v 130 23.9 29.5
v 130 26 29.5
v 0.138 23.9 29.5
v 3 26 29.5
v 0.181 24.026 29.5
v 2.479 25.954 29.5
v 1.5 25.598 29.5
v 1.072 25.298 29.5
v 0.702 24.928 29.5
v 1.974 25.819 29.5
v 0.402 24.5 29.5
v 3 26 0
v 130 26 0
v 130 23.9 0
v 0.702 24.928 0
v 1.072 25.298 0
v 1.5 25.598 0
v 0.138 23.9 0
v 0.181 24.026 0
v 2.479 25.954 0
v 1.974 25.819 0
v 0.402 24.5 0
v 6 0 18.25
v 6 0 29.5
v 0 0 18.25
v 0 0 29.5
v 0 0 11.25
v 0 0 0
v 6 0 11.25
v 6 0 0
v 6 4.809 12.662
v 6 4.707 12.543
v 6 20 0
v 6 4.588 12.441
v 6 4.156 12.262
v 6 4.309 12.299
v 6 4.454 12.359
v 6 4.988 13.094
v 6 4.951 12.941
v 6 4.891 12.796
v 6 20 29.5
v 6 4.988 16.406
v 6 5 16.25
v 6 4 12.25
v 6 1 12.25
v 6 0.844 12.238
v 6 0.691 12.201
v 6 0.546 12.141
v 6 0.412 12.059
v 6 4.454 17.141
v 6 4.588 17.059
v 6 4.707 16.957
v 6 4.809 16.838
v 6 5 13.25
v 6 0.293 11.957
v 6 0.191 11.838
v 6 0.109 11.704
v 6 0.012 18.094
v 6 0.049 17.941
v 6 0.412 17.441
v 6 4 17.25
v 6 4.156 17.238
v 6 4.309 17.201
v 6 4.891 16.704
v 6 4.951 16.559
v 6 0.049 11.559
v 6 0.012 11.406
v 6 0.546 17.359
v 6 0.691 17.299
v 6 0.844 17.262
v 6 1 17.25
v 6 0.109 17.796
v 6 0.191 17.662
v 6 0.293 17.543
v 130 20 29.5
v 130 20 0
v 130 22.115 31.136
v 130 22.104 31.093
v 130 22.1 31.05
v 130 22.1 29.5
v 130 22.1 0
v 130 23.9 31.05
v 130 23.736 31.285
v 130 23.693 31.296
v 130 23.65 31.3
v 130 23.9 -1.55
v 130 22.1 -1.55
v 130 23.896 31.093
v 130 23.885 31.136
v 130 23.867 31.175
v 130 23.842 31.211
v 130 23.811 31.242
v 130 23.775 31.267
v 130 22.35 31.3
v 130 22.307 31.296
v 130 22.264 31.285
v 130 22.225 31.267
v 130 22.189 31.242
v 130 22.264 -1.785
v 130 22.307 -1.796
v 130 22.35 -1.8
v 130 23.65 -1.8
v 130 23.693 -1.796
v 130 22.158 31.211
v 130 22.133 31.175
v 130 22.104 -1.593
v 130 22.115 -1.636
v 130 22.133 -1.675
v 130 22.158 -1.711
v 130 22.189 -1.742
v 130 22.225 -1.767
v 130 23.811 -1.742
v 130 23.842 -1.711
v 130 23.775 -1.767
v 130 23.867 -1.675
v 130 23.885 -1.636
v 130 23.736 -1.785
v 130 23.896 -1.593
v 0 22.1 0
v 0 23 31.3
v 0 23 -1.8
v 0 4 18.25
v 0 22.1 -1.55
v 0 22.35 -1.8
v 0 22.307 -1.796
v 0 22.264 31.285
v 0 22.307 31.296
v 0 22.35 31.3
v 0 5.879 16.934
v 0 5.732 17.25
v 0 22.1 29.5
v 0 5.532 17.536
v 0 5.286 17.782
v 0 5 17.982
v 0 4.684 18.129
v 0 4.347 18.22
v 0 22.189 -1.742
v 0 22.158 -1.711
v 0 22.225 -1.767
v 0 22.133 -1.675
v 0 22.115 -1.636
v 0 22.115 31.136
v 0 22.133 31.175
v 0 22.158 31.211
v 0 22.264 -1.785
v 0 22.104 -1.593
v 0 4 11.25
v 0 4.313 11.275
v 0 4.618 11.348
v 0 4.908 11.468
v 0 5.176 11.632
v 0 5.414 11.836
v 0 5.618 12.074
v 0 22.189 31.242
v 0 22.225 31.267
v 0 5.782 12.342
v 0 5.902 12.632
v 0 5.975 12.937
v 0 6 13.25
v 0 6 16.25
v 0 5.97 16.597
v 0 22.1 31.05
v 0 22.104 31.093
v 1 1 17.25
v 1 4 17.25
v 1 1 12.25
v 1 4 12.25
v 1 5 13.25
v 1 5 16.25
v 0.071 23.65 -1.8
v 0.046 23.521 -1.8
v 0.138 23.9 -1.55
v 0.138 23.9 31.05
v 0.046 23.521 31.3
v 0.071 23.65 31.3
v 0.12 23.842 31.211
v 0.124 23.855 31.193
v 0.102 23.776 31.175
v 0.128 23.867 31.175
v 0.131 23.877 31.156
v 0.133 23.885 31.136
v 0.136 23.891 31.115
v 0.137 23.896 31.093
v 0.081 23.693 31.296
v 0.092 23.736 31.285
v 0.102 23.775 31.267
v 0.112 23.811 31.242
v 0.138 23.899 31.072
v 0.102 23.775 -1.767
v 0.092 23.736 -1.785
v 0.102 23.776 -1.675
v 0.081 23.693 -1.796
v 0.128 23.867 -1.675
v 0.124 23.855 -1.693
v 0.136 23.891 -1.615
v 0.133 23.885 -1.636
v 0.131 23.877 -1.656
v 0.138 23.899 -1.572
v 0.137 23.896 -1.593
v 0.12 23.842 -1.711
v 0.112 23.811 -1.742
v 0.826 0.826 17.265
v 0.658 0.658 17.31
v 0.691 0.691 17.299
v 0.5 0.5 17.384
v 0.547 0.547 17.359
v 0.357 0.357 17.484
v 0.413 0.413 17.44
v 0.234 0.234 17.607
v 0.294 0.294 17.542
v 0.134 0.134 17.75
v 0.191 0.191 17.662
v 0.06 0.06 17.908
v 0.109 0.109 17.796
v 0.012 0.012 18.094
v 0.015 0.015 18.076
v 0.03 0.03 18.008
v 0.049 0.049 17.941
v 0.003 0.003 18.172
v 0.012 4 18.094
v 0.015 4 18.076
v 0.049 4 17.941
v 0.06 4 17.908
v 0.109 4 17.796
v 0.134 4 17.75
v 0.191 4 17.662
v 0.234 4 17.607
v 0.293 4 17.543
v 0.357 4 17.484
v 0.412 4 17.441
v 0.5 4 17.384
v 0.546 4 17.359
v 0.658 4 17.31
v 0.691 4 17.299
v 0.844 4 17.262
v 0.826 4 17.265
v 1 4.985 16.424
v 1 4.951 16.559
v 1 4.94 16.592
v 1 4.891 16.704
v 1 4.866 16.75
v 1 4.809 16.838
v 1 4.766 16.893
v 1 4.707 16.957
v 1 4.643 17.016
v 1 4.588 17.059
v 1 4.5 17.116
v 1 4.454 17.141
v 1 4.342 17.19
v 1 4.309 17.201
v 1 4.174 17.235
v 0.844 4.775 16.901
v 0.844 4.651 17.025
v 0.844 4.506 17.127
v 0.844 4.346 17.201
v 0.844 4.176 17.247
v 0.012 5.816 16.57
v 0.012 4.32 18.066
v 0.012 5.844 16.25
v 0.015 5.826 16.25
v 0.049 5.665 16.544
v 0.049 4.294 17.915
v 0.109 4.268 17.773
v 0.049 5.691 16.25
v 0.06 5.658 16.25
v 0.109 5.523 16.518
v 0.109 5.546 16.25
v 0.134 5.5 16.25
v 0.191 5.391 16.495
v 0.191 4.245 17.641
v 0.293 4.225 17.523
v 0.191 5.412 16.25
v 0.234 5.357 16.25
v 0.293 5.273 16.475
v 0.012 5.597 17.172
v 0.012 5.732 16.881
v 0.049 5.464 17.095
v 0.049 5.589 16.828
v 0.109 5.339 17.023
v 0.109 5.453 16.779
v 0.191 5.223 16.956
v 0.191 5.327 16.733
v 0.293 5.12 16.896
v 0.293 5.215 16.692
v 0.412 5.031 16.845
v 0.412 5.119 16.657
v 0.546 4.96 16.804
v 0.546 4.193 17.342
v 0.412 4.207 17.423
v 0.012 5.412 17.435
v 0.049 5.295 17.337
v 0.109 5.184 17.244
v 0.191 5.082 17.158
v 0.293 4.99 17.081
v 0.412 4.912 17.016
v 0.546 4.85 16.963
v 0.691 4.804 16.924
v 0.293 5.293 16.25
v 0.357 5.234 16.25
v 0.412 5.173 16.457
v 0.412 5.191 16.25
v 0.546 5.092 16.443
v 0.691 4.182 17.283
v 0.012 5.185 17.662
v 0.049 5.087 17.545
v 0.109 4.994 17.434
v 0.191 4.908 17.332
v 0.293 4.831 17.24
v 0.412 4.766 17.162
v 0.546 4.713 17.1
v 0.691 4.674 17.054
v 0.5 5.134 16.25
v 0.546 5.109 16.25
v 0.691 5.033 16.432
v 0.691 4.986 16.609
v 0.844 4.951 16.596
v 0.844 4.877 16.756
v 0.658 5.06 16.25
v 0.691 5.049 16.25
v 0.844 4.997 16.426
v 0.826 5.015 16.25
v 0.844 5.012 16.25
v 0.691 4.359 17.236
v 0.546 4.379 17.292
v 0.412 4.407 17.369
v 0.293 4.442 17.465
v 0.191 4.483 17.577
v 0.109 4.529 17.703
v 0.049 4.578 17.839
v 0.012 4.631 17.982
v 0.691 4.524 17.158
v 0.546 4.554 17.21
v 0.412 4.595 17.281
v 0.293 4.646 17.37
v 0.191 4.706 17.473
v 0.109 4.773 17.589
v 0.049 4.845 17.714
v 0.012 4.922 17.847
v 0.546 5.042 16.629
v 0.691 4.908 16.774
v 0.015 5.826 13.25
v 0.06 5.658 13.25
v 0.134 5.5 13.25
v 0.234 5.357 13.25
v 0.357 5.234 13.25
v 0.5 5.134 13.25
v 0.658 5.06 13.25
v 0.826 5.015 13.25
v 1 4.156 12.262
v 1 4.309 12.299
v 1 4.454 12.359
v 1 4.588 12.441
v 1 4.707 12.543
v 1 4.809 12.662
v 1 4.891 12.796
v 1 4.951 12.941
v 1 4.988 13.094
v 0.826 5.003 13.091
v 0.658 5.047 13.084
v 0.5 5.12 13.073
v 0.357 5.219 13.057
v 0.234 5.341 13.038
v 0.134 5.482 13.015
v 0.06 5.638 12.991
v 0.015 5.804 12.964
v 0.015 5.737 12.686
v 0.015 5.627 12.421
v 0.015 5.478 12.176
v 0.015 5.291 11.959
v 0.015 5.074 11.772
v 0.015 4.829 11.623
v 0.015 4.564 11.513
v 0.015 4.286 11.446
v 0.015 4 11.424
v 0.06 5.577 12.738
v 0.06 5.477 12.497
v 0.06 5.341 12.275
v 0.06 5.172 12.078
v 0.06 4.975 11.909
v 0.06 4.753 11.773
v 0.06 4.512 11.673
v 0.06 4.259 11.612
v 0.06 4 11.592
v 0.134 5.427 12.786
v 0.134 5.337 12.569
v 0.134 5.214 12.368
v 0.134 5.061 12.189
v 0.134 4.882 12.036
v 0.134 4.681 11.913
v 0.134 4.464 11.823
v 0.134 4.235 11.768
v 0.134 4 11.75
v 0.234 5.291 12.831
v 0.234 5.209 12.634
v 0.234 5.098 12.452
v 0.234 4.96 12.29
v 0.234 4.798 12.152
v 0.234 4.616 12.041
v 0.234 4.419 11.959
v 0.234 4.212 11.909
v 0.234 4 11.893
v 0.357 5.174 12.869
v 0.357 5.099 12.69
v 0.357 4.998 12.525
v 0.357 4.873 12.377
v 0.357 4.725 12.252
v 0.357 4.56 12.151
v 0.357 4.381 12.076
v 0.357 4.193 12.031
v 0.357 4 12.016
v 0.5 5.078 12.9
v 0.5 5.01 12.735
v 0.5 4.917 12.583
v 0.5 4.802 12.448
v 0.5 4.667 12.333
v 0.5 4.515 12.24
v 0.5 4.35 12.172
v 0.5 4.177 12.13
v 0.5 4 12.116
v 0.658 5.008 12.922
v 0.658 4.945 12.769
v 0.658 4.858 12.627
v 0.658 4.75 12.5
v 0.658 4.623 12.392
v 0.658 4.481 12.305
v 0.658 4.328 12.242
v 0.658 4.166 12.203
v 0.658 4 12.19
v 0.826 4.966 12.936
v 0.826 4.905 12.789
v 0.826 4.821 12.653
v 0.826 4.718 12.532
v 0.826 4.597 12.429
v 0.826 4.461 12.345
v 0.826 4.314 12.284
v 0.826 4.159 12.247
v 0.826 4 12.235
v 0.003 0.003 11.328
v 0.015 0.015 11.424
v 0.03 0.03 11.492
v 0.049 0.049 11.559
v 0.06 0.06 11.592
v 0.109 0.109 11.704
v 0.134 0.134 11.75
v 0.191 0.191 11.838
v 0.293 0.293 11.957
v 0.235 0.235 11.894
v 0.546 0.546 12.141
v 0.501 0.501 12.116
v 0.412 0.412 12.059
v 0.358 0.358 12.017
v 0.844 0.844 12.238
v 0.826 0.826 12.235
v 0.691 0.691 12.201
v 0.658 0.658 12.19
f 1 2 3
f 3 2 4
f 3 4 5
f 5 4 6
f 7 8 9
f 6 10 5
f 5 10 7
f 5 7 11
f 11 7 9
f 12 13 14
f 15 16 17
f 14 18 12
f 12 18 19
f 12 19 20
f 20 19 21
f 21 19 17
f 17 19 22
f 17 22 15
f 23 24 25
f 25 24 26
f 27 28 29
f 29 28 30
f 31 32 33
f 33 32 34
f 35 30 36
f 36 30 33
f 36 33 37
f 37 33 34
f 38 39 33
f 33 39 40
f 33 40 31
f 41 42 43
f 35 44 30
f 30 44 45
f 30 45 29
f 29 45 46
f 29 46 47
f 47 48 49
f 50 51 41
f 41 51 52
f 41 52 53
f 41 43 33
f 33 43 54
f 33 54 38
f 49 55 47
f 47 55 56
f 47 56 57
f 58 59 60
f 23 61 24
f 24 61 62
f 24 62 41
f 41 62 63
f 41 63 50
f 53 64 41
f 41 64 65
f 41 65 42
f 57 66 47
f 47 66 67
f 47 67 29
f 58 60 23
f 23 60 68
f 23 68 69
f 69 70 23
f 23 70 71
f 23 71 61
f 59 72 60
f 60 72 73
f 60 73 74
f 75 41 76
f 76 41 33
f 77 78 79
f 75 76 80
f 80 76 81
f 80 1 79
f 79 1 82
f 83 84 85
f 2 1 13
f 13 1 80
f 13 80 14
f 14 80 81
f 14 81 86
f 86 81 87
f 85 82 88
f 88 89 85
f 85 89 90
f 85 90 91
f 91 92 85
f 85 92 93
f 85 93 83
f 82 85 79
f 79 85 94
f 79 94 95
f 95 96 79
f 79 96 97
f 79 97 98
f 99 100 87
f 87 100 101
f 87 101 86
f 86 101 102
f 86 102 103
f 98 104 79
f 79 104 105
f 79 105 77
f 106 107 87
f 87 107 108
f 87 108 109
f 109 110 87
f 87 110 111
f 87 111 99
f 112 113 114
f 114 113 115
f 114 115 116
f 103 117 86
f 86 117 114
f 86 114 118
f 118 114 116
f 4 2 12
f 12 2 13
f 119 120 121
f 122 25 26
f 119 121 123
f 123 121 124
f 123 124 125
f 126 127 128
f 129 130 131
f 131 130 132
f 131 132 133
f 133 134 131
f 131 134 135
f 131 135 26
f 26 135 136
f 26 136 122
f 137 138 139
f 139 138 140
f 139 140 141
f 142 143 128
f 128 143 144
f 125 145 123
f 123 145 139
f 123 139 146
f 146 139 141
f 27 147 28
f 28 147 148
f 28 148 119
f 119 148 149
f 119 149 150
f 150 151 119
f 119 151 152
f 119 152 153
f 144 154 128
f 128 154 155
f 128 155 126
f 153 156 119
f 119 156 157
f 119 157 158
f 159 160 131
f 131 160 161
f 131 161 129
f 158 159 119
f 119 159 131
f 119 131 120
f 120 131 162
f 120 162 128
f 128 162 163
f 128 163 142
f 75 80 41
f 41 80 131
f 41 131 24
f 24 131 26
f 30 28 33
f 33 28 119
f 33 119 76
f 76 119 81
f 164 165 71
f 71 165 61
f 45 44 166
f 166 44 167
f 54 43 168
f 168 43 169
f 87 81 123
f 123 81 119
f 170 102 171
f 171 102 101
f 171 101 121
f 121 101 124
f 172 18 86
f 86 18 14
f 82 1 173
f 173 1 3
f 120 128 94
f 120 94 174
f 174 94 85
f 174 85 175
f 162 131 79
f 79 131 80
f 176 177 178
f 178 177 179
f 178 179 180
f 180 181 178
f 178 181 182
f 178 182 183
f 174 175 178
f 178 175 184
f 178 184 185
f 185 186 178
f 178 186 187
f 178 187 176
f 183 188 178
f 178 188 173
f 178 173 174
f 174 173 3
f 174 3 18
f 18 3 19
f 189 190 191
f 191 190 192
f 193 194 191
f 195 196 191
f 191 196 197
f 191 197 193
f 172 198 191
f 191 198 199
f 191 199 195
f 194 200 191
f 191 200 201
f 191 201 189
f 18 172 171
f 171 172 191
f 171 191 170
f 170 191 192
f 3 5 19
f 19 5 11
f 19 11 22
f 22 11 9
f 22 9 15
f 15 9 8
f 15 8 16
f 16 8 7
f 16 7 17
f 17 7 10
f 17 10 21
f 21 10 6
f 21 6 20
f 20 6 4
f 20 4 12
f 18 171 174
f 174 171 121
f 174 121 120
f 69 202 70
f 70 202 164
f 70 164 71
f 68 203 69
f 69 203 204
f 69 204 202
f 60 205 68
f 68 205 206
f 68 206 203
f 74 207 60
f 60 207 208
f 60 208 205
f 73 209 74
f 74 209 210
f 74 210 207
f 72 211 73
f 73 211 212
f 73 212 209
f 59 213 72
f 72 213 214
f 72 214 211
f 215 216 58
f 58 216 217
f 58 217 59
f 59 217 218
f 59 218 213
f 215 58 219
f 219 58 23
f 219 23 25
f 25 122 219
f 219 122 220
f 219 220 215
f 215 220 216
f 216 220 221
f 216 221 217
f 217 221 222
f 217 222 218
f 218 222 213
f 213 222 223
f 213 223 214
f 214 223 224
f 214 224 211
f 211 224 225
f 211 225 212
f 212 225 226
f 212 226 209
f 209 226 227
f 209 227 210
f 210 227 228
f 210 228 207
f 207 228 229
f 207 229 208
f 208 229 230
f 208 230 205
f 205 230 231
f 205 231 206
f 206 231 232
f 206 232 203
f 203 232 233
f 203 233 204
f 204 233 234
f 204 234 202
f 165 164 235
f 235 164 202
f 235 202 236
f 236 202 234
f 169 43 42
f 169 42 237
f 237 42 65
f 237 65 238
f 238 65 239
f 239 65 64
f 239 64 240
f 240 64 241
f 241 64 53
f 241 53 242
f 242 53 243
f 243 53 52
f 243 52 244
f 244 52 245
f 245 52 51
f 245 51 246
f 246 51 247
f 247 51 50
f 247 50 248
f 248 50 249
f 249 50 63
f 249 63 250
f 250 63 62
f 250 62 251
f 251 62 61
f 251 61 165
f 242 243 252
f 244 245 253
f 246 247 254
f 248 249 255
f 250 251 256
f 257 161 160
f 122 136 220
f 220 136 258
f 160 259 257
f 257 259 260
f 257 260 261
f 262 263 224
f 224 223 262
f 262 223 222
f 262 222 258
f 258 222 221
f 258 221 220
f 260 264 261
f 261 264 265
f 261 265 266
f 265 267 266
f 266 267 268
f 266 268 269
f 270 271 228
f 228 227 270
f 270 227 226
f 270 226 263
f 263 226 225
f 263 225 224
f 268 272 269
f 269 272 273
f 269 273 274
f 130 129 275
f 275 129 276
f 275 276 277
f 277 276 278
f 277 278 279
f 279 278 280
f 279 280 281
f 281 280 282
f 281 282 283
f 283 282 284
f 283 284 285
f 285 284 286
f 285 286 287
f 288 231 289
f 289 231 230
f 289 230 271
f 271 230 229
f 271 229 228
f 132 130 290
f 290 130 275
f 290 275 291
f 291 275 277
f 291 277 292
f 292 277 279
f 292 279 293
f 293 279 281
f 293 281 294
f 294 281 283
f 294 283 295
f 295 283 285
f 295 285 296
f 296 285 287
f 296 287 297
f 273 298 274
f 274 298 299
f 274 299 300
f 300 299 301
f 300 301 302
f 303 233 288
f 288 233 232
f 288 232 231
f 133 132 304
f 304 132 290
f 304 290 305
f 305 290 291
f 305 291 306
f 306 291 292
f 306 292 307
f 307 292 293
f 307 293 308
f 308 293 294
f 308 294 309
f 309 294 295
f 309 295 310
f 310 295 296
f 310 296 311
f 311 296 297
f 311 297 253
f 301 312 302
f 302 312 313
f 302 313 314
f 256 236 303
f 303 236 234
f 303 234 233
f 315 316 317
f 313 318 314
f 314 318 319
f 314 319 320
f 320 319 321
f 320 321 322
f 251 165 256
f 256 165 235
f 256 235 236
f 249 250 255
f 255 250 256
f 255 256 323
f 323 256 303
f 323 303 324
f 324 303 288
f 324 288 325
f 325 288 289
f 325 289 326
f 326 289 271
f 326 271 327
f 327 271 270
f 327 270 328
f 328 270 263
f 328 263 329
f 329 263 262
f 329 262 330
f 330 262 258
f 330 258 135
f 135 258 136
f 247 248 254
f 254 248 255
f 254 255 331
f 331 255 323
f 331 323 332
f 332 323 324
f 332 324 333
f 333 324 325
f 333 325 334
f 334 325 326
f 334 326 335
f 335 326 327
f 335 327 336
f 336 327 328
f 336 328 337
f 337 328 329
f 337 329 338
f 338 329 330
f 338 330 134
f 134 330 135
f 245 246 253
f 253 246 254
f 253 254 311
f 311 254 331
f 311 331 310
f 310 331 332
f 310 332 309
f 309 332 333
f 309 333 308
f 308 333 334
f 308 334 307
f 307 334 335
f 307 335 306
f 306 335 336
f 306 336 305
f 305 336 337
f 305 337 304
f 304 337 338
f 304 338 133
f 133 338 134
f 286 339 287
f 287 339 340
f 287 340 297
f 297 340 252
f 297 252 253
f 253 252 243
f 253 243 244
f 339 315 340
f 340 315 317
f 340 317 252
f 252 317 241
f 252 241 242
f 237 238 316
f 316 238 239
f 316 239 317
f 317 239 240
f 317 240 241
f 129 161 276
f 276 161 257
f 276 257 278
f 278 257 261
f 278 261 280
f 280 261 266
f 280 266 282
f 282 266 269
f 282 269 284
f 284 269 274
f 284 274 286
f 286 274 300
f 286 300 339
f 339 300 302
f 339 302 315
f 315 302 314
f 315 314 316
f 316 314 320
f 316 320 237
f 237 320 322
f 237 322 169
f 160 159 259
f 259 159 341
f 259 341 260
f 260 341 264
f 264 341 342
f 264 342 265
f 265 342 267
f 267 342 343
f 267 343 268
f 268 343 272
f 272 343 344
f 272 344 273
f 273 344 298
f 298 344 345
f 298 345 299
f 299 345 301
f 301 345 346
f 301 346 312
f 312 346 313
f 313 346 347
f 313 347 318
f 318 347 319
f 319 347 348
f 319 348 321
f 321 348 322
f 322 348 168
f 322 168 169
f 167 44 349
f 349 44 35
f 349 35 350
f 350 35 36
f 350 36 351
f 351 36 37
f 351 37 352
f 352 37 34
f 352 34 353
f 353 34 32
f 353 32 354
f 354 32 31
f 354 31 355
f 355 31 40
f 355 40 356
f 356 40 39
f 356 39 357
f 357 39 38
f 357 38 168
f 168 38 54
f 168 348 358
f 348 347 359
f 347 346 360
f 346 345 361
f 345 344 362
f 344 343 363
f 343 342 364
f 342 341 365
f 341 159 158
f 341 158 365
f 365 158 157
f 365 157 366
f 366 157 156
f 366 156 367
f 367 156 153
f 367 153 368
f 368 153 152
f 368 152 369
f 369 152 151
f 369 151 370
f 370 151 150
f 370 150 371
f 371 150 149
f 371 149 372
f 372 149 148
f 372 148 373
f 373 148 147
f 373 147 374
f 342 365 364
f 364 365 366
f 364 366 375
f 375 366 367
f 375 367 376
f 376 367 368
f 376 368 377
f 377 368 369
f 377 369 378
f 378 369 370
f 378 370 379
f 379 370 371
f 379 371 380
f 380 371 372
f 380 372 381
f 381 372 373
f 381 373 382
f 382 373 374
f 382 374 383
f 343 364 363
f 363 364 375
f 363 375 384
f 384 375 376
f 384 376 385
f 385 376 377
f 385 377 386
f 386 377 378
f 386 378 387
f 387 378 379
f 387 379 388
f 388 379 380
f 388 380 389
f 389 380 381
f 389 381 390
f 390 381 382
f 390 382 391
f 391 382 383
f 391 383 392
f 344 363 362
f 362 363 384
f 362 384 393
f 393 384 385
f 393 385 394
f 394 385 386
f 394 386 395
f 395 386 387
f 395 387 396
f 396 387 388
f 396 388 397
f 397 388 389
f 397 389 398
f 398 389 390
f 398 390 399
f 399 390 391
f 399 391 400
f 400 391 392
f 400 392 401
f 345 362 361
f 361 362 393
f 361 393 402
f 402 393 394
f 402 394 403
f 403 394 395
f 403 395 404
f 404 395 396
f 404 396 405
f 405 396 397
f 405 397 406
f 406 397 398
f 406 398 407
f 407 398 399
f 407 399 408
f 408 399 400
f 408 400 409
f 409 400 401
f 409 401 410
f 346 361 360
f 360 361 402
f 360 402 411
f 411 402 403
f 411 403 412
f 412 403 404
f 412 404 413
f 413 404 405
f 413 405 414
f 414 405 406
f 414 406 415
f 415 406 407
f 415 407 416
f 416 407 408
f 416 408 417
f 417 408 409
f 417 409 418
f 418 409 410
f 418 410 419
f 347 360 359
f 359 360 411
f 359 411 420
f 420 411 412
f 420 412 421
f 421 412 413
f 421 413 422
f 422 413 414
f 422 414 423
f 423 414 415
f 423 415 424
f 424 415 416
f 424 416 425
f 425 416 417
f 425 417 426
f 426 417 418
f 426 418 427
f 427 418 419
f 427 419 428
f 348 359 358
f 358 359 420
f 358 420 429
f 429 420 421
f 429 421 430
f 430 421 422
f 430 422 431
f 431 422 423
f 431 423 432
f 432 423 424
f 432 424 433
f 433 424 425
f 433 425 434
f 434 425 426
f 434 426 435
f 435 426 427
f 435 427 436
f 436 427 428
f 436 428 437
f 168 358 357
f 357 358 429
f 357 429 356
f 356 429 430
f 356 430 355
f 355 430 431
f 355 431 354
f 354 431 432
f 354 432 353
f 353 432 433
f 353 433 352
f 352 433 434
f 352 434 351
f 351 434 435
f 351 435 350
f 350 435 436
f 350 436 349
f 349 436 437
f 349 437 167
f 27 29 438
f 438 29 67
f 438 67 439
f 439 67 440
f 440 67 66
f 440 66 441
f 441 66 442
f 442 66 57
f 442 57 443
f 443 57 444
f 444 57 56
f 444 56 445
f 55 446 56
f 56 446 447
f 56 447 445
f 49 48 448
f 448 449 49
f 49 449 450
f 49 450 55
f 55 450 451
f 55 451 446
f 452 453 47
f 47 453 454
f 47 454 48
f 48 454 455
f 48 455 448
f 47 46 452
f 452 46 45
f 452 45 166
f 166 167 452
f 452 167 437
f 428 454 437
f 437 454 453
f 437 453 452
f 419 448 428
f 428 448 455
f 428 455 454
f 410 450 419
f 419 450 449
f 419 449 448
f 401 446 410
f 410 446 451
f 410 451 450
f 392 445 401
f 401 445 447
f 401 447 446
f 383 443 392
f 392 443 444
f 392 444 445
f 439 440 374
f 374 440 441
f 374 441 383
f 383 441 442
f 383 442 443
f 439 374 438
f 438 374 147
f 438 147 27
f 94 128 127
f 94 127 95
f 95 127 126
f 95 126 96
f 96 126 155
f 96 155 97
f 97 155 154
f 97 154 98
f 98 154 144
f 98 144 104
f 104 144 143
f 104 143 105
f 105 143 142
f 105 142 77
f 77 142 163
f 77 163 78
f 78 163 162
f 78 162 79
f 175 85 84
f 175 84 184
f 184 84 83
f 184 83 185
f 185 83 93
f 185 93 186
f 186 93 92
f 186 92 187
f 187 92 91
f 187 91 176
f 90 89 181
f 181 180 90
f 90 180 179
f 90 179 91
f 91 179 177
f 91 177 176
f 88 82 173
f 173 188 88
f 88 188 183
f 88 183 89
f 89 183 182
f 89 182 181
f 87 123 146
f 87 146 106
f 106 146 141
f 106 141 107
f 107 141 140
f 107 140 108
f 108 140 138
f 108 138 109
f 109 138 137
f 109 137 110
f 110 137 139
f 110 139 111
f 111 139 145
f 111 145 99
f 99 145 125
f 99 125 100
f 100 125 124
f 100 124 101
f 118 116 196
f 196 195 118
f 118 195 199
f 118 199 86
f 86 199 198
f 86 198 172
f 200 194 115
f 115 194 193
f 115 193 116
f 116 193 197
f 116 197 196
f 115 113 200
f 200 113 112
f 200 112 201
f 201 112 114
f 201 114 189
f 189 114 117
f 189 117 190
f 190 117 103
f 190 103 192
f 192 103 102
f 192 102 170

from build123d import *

# Parameters (mm, degrees)
BOSS_EXTRUDE1_DEPTH = 29.5
CUT_EXTRUDE1_REACH  = 132
SKETCH2_W           = 5
SKETCH2_H           = 5
SKETCH3_W           = 1.8
SKETCH3_H           = 1.8
BOSS_EXTRUDE2_DEPTH = 130
FILLET1_R           = 3
FILLET2_R           = 1
FILLET3_R           = 0.25


with BuildPart() as part:
    # Sketch1 → Boss-Extrude1 (new body)
    with BuildSketch(Plane.XY):
        Polygon((0, 0), (0, 26), (130, 26), (130, 20), (6, 20), (6, 0), align=None)
    extrude(amount=BOSS_EXTRUDE1_DEPTH)

    # Sketch2 → Cut-Extrude1 (cut, up to next)
    with BuildSketch(Plane.ZY, mode=Mode.PRIVATE) as cut_extrude1_sk1:
        with Locations((14.75, 2.5)):
            Rectangle(SKETCH2_W, SKETCH2_H)
    cut_extrude1_tool1 = extrude(cut_extrude1_sk1.sketch, amount=-CUT_EXTRUDE1_REACH, mode=Mode.PRIVATE) & part.part
    add(cut_extrude1_tool1.solids().sort_by_distance((0, 2.5, 14.75))[0], mode=Mode.SUBTRACT)

    # Sketch3 → Boss-Extrude2 (add)
    with BuildSketch(Plane.ZY):
        with Locations((-0.9, 23)):
            Rectangle(SKETCH3_W, SKETCH3_H)
        with Locations((30.4, 23)):
            Rectangle(SKETCH3_W, SKETCH3_H)
    extrude(amount=-BOSS_EXTRUDE2_DEPTH)

    # Fillet1
    fillet1_edges = [part.edges().sort_by_distance(p)[0] for p in [
        (0, 26, 14.75),
    ]]
    fillet(fillet1_edges, radius=FILLET1_R)

    # Fillet2
    fillet2_edges = [part.edges().sort_by_distance(p)[0] for p in [
        (3, 5, 17.25),
        (3, 0, 17.25),
        (3, 0, 12.25),
        (3, 5, 12.25),
        (0, 2.5, 17.25),
        (0, 5, 14.75),
        (0, 2.5, 12.25),
    ]]
    fillet(fillet2_edges, radius=FILLET2_R)

    # Fillet3
    fillet3_edges = [part.edges().sort_by_distance(p)[0] for p in [
        (65, 22.1, -1.8),
        (65.069091198, 23.9, -1.8),
        (65.069091198, 23.9, 31.3),
        (65, 22.1, 31.3),
    ]]
    fillet(fillet3_edges, radius=FILLET3_R)


solid = part.part
